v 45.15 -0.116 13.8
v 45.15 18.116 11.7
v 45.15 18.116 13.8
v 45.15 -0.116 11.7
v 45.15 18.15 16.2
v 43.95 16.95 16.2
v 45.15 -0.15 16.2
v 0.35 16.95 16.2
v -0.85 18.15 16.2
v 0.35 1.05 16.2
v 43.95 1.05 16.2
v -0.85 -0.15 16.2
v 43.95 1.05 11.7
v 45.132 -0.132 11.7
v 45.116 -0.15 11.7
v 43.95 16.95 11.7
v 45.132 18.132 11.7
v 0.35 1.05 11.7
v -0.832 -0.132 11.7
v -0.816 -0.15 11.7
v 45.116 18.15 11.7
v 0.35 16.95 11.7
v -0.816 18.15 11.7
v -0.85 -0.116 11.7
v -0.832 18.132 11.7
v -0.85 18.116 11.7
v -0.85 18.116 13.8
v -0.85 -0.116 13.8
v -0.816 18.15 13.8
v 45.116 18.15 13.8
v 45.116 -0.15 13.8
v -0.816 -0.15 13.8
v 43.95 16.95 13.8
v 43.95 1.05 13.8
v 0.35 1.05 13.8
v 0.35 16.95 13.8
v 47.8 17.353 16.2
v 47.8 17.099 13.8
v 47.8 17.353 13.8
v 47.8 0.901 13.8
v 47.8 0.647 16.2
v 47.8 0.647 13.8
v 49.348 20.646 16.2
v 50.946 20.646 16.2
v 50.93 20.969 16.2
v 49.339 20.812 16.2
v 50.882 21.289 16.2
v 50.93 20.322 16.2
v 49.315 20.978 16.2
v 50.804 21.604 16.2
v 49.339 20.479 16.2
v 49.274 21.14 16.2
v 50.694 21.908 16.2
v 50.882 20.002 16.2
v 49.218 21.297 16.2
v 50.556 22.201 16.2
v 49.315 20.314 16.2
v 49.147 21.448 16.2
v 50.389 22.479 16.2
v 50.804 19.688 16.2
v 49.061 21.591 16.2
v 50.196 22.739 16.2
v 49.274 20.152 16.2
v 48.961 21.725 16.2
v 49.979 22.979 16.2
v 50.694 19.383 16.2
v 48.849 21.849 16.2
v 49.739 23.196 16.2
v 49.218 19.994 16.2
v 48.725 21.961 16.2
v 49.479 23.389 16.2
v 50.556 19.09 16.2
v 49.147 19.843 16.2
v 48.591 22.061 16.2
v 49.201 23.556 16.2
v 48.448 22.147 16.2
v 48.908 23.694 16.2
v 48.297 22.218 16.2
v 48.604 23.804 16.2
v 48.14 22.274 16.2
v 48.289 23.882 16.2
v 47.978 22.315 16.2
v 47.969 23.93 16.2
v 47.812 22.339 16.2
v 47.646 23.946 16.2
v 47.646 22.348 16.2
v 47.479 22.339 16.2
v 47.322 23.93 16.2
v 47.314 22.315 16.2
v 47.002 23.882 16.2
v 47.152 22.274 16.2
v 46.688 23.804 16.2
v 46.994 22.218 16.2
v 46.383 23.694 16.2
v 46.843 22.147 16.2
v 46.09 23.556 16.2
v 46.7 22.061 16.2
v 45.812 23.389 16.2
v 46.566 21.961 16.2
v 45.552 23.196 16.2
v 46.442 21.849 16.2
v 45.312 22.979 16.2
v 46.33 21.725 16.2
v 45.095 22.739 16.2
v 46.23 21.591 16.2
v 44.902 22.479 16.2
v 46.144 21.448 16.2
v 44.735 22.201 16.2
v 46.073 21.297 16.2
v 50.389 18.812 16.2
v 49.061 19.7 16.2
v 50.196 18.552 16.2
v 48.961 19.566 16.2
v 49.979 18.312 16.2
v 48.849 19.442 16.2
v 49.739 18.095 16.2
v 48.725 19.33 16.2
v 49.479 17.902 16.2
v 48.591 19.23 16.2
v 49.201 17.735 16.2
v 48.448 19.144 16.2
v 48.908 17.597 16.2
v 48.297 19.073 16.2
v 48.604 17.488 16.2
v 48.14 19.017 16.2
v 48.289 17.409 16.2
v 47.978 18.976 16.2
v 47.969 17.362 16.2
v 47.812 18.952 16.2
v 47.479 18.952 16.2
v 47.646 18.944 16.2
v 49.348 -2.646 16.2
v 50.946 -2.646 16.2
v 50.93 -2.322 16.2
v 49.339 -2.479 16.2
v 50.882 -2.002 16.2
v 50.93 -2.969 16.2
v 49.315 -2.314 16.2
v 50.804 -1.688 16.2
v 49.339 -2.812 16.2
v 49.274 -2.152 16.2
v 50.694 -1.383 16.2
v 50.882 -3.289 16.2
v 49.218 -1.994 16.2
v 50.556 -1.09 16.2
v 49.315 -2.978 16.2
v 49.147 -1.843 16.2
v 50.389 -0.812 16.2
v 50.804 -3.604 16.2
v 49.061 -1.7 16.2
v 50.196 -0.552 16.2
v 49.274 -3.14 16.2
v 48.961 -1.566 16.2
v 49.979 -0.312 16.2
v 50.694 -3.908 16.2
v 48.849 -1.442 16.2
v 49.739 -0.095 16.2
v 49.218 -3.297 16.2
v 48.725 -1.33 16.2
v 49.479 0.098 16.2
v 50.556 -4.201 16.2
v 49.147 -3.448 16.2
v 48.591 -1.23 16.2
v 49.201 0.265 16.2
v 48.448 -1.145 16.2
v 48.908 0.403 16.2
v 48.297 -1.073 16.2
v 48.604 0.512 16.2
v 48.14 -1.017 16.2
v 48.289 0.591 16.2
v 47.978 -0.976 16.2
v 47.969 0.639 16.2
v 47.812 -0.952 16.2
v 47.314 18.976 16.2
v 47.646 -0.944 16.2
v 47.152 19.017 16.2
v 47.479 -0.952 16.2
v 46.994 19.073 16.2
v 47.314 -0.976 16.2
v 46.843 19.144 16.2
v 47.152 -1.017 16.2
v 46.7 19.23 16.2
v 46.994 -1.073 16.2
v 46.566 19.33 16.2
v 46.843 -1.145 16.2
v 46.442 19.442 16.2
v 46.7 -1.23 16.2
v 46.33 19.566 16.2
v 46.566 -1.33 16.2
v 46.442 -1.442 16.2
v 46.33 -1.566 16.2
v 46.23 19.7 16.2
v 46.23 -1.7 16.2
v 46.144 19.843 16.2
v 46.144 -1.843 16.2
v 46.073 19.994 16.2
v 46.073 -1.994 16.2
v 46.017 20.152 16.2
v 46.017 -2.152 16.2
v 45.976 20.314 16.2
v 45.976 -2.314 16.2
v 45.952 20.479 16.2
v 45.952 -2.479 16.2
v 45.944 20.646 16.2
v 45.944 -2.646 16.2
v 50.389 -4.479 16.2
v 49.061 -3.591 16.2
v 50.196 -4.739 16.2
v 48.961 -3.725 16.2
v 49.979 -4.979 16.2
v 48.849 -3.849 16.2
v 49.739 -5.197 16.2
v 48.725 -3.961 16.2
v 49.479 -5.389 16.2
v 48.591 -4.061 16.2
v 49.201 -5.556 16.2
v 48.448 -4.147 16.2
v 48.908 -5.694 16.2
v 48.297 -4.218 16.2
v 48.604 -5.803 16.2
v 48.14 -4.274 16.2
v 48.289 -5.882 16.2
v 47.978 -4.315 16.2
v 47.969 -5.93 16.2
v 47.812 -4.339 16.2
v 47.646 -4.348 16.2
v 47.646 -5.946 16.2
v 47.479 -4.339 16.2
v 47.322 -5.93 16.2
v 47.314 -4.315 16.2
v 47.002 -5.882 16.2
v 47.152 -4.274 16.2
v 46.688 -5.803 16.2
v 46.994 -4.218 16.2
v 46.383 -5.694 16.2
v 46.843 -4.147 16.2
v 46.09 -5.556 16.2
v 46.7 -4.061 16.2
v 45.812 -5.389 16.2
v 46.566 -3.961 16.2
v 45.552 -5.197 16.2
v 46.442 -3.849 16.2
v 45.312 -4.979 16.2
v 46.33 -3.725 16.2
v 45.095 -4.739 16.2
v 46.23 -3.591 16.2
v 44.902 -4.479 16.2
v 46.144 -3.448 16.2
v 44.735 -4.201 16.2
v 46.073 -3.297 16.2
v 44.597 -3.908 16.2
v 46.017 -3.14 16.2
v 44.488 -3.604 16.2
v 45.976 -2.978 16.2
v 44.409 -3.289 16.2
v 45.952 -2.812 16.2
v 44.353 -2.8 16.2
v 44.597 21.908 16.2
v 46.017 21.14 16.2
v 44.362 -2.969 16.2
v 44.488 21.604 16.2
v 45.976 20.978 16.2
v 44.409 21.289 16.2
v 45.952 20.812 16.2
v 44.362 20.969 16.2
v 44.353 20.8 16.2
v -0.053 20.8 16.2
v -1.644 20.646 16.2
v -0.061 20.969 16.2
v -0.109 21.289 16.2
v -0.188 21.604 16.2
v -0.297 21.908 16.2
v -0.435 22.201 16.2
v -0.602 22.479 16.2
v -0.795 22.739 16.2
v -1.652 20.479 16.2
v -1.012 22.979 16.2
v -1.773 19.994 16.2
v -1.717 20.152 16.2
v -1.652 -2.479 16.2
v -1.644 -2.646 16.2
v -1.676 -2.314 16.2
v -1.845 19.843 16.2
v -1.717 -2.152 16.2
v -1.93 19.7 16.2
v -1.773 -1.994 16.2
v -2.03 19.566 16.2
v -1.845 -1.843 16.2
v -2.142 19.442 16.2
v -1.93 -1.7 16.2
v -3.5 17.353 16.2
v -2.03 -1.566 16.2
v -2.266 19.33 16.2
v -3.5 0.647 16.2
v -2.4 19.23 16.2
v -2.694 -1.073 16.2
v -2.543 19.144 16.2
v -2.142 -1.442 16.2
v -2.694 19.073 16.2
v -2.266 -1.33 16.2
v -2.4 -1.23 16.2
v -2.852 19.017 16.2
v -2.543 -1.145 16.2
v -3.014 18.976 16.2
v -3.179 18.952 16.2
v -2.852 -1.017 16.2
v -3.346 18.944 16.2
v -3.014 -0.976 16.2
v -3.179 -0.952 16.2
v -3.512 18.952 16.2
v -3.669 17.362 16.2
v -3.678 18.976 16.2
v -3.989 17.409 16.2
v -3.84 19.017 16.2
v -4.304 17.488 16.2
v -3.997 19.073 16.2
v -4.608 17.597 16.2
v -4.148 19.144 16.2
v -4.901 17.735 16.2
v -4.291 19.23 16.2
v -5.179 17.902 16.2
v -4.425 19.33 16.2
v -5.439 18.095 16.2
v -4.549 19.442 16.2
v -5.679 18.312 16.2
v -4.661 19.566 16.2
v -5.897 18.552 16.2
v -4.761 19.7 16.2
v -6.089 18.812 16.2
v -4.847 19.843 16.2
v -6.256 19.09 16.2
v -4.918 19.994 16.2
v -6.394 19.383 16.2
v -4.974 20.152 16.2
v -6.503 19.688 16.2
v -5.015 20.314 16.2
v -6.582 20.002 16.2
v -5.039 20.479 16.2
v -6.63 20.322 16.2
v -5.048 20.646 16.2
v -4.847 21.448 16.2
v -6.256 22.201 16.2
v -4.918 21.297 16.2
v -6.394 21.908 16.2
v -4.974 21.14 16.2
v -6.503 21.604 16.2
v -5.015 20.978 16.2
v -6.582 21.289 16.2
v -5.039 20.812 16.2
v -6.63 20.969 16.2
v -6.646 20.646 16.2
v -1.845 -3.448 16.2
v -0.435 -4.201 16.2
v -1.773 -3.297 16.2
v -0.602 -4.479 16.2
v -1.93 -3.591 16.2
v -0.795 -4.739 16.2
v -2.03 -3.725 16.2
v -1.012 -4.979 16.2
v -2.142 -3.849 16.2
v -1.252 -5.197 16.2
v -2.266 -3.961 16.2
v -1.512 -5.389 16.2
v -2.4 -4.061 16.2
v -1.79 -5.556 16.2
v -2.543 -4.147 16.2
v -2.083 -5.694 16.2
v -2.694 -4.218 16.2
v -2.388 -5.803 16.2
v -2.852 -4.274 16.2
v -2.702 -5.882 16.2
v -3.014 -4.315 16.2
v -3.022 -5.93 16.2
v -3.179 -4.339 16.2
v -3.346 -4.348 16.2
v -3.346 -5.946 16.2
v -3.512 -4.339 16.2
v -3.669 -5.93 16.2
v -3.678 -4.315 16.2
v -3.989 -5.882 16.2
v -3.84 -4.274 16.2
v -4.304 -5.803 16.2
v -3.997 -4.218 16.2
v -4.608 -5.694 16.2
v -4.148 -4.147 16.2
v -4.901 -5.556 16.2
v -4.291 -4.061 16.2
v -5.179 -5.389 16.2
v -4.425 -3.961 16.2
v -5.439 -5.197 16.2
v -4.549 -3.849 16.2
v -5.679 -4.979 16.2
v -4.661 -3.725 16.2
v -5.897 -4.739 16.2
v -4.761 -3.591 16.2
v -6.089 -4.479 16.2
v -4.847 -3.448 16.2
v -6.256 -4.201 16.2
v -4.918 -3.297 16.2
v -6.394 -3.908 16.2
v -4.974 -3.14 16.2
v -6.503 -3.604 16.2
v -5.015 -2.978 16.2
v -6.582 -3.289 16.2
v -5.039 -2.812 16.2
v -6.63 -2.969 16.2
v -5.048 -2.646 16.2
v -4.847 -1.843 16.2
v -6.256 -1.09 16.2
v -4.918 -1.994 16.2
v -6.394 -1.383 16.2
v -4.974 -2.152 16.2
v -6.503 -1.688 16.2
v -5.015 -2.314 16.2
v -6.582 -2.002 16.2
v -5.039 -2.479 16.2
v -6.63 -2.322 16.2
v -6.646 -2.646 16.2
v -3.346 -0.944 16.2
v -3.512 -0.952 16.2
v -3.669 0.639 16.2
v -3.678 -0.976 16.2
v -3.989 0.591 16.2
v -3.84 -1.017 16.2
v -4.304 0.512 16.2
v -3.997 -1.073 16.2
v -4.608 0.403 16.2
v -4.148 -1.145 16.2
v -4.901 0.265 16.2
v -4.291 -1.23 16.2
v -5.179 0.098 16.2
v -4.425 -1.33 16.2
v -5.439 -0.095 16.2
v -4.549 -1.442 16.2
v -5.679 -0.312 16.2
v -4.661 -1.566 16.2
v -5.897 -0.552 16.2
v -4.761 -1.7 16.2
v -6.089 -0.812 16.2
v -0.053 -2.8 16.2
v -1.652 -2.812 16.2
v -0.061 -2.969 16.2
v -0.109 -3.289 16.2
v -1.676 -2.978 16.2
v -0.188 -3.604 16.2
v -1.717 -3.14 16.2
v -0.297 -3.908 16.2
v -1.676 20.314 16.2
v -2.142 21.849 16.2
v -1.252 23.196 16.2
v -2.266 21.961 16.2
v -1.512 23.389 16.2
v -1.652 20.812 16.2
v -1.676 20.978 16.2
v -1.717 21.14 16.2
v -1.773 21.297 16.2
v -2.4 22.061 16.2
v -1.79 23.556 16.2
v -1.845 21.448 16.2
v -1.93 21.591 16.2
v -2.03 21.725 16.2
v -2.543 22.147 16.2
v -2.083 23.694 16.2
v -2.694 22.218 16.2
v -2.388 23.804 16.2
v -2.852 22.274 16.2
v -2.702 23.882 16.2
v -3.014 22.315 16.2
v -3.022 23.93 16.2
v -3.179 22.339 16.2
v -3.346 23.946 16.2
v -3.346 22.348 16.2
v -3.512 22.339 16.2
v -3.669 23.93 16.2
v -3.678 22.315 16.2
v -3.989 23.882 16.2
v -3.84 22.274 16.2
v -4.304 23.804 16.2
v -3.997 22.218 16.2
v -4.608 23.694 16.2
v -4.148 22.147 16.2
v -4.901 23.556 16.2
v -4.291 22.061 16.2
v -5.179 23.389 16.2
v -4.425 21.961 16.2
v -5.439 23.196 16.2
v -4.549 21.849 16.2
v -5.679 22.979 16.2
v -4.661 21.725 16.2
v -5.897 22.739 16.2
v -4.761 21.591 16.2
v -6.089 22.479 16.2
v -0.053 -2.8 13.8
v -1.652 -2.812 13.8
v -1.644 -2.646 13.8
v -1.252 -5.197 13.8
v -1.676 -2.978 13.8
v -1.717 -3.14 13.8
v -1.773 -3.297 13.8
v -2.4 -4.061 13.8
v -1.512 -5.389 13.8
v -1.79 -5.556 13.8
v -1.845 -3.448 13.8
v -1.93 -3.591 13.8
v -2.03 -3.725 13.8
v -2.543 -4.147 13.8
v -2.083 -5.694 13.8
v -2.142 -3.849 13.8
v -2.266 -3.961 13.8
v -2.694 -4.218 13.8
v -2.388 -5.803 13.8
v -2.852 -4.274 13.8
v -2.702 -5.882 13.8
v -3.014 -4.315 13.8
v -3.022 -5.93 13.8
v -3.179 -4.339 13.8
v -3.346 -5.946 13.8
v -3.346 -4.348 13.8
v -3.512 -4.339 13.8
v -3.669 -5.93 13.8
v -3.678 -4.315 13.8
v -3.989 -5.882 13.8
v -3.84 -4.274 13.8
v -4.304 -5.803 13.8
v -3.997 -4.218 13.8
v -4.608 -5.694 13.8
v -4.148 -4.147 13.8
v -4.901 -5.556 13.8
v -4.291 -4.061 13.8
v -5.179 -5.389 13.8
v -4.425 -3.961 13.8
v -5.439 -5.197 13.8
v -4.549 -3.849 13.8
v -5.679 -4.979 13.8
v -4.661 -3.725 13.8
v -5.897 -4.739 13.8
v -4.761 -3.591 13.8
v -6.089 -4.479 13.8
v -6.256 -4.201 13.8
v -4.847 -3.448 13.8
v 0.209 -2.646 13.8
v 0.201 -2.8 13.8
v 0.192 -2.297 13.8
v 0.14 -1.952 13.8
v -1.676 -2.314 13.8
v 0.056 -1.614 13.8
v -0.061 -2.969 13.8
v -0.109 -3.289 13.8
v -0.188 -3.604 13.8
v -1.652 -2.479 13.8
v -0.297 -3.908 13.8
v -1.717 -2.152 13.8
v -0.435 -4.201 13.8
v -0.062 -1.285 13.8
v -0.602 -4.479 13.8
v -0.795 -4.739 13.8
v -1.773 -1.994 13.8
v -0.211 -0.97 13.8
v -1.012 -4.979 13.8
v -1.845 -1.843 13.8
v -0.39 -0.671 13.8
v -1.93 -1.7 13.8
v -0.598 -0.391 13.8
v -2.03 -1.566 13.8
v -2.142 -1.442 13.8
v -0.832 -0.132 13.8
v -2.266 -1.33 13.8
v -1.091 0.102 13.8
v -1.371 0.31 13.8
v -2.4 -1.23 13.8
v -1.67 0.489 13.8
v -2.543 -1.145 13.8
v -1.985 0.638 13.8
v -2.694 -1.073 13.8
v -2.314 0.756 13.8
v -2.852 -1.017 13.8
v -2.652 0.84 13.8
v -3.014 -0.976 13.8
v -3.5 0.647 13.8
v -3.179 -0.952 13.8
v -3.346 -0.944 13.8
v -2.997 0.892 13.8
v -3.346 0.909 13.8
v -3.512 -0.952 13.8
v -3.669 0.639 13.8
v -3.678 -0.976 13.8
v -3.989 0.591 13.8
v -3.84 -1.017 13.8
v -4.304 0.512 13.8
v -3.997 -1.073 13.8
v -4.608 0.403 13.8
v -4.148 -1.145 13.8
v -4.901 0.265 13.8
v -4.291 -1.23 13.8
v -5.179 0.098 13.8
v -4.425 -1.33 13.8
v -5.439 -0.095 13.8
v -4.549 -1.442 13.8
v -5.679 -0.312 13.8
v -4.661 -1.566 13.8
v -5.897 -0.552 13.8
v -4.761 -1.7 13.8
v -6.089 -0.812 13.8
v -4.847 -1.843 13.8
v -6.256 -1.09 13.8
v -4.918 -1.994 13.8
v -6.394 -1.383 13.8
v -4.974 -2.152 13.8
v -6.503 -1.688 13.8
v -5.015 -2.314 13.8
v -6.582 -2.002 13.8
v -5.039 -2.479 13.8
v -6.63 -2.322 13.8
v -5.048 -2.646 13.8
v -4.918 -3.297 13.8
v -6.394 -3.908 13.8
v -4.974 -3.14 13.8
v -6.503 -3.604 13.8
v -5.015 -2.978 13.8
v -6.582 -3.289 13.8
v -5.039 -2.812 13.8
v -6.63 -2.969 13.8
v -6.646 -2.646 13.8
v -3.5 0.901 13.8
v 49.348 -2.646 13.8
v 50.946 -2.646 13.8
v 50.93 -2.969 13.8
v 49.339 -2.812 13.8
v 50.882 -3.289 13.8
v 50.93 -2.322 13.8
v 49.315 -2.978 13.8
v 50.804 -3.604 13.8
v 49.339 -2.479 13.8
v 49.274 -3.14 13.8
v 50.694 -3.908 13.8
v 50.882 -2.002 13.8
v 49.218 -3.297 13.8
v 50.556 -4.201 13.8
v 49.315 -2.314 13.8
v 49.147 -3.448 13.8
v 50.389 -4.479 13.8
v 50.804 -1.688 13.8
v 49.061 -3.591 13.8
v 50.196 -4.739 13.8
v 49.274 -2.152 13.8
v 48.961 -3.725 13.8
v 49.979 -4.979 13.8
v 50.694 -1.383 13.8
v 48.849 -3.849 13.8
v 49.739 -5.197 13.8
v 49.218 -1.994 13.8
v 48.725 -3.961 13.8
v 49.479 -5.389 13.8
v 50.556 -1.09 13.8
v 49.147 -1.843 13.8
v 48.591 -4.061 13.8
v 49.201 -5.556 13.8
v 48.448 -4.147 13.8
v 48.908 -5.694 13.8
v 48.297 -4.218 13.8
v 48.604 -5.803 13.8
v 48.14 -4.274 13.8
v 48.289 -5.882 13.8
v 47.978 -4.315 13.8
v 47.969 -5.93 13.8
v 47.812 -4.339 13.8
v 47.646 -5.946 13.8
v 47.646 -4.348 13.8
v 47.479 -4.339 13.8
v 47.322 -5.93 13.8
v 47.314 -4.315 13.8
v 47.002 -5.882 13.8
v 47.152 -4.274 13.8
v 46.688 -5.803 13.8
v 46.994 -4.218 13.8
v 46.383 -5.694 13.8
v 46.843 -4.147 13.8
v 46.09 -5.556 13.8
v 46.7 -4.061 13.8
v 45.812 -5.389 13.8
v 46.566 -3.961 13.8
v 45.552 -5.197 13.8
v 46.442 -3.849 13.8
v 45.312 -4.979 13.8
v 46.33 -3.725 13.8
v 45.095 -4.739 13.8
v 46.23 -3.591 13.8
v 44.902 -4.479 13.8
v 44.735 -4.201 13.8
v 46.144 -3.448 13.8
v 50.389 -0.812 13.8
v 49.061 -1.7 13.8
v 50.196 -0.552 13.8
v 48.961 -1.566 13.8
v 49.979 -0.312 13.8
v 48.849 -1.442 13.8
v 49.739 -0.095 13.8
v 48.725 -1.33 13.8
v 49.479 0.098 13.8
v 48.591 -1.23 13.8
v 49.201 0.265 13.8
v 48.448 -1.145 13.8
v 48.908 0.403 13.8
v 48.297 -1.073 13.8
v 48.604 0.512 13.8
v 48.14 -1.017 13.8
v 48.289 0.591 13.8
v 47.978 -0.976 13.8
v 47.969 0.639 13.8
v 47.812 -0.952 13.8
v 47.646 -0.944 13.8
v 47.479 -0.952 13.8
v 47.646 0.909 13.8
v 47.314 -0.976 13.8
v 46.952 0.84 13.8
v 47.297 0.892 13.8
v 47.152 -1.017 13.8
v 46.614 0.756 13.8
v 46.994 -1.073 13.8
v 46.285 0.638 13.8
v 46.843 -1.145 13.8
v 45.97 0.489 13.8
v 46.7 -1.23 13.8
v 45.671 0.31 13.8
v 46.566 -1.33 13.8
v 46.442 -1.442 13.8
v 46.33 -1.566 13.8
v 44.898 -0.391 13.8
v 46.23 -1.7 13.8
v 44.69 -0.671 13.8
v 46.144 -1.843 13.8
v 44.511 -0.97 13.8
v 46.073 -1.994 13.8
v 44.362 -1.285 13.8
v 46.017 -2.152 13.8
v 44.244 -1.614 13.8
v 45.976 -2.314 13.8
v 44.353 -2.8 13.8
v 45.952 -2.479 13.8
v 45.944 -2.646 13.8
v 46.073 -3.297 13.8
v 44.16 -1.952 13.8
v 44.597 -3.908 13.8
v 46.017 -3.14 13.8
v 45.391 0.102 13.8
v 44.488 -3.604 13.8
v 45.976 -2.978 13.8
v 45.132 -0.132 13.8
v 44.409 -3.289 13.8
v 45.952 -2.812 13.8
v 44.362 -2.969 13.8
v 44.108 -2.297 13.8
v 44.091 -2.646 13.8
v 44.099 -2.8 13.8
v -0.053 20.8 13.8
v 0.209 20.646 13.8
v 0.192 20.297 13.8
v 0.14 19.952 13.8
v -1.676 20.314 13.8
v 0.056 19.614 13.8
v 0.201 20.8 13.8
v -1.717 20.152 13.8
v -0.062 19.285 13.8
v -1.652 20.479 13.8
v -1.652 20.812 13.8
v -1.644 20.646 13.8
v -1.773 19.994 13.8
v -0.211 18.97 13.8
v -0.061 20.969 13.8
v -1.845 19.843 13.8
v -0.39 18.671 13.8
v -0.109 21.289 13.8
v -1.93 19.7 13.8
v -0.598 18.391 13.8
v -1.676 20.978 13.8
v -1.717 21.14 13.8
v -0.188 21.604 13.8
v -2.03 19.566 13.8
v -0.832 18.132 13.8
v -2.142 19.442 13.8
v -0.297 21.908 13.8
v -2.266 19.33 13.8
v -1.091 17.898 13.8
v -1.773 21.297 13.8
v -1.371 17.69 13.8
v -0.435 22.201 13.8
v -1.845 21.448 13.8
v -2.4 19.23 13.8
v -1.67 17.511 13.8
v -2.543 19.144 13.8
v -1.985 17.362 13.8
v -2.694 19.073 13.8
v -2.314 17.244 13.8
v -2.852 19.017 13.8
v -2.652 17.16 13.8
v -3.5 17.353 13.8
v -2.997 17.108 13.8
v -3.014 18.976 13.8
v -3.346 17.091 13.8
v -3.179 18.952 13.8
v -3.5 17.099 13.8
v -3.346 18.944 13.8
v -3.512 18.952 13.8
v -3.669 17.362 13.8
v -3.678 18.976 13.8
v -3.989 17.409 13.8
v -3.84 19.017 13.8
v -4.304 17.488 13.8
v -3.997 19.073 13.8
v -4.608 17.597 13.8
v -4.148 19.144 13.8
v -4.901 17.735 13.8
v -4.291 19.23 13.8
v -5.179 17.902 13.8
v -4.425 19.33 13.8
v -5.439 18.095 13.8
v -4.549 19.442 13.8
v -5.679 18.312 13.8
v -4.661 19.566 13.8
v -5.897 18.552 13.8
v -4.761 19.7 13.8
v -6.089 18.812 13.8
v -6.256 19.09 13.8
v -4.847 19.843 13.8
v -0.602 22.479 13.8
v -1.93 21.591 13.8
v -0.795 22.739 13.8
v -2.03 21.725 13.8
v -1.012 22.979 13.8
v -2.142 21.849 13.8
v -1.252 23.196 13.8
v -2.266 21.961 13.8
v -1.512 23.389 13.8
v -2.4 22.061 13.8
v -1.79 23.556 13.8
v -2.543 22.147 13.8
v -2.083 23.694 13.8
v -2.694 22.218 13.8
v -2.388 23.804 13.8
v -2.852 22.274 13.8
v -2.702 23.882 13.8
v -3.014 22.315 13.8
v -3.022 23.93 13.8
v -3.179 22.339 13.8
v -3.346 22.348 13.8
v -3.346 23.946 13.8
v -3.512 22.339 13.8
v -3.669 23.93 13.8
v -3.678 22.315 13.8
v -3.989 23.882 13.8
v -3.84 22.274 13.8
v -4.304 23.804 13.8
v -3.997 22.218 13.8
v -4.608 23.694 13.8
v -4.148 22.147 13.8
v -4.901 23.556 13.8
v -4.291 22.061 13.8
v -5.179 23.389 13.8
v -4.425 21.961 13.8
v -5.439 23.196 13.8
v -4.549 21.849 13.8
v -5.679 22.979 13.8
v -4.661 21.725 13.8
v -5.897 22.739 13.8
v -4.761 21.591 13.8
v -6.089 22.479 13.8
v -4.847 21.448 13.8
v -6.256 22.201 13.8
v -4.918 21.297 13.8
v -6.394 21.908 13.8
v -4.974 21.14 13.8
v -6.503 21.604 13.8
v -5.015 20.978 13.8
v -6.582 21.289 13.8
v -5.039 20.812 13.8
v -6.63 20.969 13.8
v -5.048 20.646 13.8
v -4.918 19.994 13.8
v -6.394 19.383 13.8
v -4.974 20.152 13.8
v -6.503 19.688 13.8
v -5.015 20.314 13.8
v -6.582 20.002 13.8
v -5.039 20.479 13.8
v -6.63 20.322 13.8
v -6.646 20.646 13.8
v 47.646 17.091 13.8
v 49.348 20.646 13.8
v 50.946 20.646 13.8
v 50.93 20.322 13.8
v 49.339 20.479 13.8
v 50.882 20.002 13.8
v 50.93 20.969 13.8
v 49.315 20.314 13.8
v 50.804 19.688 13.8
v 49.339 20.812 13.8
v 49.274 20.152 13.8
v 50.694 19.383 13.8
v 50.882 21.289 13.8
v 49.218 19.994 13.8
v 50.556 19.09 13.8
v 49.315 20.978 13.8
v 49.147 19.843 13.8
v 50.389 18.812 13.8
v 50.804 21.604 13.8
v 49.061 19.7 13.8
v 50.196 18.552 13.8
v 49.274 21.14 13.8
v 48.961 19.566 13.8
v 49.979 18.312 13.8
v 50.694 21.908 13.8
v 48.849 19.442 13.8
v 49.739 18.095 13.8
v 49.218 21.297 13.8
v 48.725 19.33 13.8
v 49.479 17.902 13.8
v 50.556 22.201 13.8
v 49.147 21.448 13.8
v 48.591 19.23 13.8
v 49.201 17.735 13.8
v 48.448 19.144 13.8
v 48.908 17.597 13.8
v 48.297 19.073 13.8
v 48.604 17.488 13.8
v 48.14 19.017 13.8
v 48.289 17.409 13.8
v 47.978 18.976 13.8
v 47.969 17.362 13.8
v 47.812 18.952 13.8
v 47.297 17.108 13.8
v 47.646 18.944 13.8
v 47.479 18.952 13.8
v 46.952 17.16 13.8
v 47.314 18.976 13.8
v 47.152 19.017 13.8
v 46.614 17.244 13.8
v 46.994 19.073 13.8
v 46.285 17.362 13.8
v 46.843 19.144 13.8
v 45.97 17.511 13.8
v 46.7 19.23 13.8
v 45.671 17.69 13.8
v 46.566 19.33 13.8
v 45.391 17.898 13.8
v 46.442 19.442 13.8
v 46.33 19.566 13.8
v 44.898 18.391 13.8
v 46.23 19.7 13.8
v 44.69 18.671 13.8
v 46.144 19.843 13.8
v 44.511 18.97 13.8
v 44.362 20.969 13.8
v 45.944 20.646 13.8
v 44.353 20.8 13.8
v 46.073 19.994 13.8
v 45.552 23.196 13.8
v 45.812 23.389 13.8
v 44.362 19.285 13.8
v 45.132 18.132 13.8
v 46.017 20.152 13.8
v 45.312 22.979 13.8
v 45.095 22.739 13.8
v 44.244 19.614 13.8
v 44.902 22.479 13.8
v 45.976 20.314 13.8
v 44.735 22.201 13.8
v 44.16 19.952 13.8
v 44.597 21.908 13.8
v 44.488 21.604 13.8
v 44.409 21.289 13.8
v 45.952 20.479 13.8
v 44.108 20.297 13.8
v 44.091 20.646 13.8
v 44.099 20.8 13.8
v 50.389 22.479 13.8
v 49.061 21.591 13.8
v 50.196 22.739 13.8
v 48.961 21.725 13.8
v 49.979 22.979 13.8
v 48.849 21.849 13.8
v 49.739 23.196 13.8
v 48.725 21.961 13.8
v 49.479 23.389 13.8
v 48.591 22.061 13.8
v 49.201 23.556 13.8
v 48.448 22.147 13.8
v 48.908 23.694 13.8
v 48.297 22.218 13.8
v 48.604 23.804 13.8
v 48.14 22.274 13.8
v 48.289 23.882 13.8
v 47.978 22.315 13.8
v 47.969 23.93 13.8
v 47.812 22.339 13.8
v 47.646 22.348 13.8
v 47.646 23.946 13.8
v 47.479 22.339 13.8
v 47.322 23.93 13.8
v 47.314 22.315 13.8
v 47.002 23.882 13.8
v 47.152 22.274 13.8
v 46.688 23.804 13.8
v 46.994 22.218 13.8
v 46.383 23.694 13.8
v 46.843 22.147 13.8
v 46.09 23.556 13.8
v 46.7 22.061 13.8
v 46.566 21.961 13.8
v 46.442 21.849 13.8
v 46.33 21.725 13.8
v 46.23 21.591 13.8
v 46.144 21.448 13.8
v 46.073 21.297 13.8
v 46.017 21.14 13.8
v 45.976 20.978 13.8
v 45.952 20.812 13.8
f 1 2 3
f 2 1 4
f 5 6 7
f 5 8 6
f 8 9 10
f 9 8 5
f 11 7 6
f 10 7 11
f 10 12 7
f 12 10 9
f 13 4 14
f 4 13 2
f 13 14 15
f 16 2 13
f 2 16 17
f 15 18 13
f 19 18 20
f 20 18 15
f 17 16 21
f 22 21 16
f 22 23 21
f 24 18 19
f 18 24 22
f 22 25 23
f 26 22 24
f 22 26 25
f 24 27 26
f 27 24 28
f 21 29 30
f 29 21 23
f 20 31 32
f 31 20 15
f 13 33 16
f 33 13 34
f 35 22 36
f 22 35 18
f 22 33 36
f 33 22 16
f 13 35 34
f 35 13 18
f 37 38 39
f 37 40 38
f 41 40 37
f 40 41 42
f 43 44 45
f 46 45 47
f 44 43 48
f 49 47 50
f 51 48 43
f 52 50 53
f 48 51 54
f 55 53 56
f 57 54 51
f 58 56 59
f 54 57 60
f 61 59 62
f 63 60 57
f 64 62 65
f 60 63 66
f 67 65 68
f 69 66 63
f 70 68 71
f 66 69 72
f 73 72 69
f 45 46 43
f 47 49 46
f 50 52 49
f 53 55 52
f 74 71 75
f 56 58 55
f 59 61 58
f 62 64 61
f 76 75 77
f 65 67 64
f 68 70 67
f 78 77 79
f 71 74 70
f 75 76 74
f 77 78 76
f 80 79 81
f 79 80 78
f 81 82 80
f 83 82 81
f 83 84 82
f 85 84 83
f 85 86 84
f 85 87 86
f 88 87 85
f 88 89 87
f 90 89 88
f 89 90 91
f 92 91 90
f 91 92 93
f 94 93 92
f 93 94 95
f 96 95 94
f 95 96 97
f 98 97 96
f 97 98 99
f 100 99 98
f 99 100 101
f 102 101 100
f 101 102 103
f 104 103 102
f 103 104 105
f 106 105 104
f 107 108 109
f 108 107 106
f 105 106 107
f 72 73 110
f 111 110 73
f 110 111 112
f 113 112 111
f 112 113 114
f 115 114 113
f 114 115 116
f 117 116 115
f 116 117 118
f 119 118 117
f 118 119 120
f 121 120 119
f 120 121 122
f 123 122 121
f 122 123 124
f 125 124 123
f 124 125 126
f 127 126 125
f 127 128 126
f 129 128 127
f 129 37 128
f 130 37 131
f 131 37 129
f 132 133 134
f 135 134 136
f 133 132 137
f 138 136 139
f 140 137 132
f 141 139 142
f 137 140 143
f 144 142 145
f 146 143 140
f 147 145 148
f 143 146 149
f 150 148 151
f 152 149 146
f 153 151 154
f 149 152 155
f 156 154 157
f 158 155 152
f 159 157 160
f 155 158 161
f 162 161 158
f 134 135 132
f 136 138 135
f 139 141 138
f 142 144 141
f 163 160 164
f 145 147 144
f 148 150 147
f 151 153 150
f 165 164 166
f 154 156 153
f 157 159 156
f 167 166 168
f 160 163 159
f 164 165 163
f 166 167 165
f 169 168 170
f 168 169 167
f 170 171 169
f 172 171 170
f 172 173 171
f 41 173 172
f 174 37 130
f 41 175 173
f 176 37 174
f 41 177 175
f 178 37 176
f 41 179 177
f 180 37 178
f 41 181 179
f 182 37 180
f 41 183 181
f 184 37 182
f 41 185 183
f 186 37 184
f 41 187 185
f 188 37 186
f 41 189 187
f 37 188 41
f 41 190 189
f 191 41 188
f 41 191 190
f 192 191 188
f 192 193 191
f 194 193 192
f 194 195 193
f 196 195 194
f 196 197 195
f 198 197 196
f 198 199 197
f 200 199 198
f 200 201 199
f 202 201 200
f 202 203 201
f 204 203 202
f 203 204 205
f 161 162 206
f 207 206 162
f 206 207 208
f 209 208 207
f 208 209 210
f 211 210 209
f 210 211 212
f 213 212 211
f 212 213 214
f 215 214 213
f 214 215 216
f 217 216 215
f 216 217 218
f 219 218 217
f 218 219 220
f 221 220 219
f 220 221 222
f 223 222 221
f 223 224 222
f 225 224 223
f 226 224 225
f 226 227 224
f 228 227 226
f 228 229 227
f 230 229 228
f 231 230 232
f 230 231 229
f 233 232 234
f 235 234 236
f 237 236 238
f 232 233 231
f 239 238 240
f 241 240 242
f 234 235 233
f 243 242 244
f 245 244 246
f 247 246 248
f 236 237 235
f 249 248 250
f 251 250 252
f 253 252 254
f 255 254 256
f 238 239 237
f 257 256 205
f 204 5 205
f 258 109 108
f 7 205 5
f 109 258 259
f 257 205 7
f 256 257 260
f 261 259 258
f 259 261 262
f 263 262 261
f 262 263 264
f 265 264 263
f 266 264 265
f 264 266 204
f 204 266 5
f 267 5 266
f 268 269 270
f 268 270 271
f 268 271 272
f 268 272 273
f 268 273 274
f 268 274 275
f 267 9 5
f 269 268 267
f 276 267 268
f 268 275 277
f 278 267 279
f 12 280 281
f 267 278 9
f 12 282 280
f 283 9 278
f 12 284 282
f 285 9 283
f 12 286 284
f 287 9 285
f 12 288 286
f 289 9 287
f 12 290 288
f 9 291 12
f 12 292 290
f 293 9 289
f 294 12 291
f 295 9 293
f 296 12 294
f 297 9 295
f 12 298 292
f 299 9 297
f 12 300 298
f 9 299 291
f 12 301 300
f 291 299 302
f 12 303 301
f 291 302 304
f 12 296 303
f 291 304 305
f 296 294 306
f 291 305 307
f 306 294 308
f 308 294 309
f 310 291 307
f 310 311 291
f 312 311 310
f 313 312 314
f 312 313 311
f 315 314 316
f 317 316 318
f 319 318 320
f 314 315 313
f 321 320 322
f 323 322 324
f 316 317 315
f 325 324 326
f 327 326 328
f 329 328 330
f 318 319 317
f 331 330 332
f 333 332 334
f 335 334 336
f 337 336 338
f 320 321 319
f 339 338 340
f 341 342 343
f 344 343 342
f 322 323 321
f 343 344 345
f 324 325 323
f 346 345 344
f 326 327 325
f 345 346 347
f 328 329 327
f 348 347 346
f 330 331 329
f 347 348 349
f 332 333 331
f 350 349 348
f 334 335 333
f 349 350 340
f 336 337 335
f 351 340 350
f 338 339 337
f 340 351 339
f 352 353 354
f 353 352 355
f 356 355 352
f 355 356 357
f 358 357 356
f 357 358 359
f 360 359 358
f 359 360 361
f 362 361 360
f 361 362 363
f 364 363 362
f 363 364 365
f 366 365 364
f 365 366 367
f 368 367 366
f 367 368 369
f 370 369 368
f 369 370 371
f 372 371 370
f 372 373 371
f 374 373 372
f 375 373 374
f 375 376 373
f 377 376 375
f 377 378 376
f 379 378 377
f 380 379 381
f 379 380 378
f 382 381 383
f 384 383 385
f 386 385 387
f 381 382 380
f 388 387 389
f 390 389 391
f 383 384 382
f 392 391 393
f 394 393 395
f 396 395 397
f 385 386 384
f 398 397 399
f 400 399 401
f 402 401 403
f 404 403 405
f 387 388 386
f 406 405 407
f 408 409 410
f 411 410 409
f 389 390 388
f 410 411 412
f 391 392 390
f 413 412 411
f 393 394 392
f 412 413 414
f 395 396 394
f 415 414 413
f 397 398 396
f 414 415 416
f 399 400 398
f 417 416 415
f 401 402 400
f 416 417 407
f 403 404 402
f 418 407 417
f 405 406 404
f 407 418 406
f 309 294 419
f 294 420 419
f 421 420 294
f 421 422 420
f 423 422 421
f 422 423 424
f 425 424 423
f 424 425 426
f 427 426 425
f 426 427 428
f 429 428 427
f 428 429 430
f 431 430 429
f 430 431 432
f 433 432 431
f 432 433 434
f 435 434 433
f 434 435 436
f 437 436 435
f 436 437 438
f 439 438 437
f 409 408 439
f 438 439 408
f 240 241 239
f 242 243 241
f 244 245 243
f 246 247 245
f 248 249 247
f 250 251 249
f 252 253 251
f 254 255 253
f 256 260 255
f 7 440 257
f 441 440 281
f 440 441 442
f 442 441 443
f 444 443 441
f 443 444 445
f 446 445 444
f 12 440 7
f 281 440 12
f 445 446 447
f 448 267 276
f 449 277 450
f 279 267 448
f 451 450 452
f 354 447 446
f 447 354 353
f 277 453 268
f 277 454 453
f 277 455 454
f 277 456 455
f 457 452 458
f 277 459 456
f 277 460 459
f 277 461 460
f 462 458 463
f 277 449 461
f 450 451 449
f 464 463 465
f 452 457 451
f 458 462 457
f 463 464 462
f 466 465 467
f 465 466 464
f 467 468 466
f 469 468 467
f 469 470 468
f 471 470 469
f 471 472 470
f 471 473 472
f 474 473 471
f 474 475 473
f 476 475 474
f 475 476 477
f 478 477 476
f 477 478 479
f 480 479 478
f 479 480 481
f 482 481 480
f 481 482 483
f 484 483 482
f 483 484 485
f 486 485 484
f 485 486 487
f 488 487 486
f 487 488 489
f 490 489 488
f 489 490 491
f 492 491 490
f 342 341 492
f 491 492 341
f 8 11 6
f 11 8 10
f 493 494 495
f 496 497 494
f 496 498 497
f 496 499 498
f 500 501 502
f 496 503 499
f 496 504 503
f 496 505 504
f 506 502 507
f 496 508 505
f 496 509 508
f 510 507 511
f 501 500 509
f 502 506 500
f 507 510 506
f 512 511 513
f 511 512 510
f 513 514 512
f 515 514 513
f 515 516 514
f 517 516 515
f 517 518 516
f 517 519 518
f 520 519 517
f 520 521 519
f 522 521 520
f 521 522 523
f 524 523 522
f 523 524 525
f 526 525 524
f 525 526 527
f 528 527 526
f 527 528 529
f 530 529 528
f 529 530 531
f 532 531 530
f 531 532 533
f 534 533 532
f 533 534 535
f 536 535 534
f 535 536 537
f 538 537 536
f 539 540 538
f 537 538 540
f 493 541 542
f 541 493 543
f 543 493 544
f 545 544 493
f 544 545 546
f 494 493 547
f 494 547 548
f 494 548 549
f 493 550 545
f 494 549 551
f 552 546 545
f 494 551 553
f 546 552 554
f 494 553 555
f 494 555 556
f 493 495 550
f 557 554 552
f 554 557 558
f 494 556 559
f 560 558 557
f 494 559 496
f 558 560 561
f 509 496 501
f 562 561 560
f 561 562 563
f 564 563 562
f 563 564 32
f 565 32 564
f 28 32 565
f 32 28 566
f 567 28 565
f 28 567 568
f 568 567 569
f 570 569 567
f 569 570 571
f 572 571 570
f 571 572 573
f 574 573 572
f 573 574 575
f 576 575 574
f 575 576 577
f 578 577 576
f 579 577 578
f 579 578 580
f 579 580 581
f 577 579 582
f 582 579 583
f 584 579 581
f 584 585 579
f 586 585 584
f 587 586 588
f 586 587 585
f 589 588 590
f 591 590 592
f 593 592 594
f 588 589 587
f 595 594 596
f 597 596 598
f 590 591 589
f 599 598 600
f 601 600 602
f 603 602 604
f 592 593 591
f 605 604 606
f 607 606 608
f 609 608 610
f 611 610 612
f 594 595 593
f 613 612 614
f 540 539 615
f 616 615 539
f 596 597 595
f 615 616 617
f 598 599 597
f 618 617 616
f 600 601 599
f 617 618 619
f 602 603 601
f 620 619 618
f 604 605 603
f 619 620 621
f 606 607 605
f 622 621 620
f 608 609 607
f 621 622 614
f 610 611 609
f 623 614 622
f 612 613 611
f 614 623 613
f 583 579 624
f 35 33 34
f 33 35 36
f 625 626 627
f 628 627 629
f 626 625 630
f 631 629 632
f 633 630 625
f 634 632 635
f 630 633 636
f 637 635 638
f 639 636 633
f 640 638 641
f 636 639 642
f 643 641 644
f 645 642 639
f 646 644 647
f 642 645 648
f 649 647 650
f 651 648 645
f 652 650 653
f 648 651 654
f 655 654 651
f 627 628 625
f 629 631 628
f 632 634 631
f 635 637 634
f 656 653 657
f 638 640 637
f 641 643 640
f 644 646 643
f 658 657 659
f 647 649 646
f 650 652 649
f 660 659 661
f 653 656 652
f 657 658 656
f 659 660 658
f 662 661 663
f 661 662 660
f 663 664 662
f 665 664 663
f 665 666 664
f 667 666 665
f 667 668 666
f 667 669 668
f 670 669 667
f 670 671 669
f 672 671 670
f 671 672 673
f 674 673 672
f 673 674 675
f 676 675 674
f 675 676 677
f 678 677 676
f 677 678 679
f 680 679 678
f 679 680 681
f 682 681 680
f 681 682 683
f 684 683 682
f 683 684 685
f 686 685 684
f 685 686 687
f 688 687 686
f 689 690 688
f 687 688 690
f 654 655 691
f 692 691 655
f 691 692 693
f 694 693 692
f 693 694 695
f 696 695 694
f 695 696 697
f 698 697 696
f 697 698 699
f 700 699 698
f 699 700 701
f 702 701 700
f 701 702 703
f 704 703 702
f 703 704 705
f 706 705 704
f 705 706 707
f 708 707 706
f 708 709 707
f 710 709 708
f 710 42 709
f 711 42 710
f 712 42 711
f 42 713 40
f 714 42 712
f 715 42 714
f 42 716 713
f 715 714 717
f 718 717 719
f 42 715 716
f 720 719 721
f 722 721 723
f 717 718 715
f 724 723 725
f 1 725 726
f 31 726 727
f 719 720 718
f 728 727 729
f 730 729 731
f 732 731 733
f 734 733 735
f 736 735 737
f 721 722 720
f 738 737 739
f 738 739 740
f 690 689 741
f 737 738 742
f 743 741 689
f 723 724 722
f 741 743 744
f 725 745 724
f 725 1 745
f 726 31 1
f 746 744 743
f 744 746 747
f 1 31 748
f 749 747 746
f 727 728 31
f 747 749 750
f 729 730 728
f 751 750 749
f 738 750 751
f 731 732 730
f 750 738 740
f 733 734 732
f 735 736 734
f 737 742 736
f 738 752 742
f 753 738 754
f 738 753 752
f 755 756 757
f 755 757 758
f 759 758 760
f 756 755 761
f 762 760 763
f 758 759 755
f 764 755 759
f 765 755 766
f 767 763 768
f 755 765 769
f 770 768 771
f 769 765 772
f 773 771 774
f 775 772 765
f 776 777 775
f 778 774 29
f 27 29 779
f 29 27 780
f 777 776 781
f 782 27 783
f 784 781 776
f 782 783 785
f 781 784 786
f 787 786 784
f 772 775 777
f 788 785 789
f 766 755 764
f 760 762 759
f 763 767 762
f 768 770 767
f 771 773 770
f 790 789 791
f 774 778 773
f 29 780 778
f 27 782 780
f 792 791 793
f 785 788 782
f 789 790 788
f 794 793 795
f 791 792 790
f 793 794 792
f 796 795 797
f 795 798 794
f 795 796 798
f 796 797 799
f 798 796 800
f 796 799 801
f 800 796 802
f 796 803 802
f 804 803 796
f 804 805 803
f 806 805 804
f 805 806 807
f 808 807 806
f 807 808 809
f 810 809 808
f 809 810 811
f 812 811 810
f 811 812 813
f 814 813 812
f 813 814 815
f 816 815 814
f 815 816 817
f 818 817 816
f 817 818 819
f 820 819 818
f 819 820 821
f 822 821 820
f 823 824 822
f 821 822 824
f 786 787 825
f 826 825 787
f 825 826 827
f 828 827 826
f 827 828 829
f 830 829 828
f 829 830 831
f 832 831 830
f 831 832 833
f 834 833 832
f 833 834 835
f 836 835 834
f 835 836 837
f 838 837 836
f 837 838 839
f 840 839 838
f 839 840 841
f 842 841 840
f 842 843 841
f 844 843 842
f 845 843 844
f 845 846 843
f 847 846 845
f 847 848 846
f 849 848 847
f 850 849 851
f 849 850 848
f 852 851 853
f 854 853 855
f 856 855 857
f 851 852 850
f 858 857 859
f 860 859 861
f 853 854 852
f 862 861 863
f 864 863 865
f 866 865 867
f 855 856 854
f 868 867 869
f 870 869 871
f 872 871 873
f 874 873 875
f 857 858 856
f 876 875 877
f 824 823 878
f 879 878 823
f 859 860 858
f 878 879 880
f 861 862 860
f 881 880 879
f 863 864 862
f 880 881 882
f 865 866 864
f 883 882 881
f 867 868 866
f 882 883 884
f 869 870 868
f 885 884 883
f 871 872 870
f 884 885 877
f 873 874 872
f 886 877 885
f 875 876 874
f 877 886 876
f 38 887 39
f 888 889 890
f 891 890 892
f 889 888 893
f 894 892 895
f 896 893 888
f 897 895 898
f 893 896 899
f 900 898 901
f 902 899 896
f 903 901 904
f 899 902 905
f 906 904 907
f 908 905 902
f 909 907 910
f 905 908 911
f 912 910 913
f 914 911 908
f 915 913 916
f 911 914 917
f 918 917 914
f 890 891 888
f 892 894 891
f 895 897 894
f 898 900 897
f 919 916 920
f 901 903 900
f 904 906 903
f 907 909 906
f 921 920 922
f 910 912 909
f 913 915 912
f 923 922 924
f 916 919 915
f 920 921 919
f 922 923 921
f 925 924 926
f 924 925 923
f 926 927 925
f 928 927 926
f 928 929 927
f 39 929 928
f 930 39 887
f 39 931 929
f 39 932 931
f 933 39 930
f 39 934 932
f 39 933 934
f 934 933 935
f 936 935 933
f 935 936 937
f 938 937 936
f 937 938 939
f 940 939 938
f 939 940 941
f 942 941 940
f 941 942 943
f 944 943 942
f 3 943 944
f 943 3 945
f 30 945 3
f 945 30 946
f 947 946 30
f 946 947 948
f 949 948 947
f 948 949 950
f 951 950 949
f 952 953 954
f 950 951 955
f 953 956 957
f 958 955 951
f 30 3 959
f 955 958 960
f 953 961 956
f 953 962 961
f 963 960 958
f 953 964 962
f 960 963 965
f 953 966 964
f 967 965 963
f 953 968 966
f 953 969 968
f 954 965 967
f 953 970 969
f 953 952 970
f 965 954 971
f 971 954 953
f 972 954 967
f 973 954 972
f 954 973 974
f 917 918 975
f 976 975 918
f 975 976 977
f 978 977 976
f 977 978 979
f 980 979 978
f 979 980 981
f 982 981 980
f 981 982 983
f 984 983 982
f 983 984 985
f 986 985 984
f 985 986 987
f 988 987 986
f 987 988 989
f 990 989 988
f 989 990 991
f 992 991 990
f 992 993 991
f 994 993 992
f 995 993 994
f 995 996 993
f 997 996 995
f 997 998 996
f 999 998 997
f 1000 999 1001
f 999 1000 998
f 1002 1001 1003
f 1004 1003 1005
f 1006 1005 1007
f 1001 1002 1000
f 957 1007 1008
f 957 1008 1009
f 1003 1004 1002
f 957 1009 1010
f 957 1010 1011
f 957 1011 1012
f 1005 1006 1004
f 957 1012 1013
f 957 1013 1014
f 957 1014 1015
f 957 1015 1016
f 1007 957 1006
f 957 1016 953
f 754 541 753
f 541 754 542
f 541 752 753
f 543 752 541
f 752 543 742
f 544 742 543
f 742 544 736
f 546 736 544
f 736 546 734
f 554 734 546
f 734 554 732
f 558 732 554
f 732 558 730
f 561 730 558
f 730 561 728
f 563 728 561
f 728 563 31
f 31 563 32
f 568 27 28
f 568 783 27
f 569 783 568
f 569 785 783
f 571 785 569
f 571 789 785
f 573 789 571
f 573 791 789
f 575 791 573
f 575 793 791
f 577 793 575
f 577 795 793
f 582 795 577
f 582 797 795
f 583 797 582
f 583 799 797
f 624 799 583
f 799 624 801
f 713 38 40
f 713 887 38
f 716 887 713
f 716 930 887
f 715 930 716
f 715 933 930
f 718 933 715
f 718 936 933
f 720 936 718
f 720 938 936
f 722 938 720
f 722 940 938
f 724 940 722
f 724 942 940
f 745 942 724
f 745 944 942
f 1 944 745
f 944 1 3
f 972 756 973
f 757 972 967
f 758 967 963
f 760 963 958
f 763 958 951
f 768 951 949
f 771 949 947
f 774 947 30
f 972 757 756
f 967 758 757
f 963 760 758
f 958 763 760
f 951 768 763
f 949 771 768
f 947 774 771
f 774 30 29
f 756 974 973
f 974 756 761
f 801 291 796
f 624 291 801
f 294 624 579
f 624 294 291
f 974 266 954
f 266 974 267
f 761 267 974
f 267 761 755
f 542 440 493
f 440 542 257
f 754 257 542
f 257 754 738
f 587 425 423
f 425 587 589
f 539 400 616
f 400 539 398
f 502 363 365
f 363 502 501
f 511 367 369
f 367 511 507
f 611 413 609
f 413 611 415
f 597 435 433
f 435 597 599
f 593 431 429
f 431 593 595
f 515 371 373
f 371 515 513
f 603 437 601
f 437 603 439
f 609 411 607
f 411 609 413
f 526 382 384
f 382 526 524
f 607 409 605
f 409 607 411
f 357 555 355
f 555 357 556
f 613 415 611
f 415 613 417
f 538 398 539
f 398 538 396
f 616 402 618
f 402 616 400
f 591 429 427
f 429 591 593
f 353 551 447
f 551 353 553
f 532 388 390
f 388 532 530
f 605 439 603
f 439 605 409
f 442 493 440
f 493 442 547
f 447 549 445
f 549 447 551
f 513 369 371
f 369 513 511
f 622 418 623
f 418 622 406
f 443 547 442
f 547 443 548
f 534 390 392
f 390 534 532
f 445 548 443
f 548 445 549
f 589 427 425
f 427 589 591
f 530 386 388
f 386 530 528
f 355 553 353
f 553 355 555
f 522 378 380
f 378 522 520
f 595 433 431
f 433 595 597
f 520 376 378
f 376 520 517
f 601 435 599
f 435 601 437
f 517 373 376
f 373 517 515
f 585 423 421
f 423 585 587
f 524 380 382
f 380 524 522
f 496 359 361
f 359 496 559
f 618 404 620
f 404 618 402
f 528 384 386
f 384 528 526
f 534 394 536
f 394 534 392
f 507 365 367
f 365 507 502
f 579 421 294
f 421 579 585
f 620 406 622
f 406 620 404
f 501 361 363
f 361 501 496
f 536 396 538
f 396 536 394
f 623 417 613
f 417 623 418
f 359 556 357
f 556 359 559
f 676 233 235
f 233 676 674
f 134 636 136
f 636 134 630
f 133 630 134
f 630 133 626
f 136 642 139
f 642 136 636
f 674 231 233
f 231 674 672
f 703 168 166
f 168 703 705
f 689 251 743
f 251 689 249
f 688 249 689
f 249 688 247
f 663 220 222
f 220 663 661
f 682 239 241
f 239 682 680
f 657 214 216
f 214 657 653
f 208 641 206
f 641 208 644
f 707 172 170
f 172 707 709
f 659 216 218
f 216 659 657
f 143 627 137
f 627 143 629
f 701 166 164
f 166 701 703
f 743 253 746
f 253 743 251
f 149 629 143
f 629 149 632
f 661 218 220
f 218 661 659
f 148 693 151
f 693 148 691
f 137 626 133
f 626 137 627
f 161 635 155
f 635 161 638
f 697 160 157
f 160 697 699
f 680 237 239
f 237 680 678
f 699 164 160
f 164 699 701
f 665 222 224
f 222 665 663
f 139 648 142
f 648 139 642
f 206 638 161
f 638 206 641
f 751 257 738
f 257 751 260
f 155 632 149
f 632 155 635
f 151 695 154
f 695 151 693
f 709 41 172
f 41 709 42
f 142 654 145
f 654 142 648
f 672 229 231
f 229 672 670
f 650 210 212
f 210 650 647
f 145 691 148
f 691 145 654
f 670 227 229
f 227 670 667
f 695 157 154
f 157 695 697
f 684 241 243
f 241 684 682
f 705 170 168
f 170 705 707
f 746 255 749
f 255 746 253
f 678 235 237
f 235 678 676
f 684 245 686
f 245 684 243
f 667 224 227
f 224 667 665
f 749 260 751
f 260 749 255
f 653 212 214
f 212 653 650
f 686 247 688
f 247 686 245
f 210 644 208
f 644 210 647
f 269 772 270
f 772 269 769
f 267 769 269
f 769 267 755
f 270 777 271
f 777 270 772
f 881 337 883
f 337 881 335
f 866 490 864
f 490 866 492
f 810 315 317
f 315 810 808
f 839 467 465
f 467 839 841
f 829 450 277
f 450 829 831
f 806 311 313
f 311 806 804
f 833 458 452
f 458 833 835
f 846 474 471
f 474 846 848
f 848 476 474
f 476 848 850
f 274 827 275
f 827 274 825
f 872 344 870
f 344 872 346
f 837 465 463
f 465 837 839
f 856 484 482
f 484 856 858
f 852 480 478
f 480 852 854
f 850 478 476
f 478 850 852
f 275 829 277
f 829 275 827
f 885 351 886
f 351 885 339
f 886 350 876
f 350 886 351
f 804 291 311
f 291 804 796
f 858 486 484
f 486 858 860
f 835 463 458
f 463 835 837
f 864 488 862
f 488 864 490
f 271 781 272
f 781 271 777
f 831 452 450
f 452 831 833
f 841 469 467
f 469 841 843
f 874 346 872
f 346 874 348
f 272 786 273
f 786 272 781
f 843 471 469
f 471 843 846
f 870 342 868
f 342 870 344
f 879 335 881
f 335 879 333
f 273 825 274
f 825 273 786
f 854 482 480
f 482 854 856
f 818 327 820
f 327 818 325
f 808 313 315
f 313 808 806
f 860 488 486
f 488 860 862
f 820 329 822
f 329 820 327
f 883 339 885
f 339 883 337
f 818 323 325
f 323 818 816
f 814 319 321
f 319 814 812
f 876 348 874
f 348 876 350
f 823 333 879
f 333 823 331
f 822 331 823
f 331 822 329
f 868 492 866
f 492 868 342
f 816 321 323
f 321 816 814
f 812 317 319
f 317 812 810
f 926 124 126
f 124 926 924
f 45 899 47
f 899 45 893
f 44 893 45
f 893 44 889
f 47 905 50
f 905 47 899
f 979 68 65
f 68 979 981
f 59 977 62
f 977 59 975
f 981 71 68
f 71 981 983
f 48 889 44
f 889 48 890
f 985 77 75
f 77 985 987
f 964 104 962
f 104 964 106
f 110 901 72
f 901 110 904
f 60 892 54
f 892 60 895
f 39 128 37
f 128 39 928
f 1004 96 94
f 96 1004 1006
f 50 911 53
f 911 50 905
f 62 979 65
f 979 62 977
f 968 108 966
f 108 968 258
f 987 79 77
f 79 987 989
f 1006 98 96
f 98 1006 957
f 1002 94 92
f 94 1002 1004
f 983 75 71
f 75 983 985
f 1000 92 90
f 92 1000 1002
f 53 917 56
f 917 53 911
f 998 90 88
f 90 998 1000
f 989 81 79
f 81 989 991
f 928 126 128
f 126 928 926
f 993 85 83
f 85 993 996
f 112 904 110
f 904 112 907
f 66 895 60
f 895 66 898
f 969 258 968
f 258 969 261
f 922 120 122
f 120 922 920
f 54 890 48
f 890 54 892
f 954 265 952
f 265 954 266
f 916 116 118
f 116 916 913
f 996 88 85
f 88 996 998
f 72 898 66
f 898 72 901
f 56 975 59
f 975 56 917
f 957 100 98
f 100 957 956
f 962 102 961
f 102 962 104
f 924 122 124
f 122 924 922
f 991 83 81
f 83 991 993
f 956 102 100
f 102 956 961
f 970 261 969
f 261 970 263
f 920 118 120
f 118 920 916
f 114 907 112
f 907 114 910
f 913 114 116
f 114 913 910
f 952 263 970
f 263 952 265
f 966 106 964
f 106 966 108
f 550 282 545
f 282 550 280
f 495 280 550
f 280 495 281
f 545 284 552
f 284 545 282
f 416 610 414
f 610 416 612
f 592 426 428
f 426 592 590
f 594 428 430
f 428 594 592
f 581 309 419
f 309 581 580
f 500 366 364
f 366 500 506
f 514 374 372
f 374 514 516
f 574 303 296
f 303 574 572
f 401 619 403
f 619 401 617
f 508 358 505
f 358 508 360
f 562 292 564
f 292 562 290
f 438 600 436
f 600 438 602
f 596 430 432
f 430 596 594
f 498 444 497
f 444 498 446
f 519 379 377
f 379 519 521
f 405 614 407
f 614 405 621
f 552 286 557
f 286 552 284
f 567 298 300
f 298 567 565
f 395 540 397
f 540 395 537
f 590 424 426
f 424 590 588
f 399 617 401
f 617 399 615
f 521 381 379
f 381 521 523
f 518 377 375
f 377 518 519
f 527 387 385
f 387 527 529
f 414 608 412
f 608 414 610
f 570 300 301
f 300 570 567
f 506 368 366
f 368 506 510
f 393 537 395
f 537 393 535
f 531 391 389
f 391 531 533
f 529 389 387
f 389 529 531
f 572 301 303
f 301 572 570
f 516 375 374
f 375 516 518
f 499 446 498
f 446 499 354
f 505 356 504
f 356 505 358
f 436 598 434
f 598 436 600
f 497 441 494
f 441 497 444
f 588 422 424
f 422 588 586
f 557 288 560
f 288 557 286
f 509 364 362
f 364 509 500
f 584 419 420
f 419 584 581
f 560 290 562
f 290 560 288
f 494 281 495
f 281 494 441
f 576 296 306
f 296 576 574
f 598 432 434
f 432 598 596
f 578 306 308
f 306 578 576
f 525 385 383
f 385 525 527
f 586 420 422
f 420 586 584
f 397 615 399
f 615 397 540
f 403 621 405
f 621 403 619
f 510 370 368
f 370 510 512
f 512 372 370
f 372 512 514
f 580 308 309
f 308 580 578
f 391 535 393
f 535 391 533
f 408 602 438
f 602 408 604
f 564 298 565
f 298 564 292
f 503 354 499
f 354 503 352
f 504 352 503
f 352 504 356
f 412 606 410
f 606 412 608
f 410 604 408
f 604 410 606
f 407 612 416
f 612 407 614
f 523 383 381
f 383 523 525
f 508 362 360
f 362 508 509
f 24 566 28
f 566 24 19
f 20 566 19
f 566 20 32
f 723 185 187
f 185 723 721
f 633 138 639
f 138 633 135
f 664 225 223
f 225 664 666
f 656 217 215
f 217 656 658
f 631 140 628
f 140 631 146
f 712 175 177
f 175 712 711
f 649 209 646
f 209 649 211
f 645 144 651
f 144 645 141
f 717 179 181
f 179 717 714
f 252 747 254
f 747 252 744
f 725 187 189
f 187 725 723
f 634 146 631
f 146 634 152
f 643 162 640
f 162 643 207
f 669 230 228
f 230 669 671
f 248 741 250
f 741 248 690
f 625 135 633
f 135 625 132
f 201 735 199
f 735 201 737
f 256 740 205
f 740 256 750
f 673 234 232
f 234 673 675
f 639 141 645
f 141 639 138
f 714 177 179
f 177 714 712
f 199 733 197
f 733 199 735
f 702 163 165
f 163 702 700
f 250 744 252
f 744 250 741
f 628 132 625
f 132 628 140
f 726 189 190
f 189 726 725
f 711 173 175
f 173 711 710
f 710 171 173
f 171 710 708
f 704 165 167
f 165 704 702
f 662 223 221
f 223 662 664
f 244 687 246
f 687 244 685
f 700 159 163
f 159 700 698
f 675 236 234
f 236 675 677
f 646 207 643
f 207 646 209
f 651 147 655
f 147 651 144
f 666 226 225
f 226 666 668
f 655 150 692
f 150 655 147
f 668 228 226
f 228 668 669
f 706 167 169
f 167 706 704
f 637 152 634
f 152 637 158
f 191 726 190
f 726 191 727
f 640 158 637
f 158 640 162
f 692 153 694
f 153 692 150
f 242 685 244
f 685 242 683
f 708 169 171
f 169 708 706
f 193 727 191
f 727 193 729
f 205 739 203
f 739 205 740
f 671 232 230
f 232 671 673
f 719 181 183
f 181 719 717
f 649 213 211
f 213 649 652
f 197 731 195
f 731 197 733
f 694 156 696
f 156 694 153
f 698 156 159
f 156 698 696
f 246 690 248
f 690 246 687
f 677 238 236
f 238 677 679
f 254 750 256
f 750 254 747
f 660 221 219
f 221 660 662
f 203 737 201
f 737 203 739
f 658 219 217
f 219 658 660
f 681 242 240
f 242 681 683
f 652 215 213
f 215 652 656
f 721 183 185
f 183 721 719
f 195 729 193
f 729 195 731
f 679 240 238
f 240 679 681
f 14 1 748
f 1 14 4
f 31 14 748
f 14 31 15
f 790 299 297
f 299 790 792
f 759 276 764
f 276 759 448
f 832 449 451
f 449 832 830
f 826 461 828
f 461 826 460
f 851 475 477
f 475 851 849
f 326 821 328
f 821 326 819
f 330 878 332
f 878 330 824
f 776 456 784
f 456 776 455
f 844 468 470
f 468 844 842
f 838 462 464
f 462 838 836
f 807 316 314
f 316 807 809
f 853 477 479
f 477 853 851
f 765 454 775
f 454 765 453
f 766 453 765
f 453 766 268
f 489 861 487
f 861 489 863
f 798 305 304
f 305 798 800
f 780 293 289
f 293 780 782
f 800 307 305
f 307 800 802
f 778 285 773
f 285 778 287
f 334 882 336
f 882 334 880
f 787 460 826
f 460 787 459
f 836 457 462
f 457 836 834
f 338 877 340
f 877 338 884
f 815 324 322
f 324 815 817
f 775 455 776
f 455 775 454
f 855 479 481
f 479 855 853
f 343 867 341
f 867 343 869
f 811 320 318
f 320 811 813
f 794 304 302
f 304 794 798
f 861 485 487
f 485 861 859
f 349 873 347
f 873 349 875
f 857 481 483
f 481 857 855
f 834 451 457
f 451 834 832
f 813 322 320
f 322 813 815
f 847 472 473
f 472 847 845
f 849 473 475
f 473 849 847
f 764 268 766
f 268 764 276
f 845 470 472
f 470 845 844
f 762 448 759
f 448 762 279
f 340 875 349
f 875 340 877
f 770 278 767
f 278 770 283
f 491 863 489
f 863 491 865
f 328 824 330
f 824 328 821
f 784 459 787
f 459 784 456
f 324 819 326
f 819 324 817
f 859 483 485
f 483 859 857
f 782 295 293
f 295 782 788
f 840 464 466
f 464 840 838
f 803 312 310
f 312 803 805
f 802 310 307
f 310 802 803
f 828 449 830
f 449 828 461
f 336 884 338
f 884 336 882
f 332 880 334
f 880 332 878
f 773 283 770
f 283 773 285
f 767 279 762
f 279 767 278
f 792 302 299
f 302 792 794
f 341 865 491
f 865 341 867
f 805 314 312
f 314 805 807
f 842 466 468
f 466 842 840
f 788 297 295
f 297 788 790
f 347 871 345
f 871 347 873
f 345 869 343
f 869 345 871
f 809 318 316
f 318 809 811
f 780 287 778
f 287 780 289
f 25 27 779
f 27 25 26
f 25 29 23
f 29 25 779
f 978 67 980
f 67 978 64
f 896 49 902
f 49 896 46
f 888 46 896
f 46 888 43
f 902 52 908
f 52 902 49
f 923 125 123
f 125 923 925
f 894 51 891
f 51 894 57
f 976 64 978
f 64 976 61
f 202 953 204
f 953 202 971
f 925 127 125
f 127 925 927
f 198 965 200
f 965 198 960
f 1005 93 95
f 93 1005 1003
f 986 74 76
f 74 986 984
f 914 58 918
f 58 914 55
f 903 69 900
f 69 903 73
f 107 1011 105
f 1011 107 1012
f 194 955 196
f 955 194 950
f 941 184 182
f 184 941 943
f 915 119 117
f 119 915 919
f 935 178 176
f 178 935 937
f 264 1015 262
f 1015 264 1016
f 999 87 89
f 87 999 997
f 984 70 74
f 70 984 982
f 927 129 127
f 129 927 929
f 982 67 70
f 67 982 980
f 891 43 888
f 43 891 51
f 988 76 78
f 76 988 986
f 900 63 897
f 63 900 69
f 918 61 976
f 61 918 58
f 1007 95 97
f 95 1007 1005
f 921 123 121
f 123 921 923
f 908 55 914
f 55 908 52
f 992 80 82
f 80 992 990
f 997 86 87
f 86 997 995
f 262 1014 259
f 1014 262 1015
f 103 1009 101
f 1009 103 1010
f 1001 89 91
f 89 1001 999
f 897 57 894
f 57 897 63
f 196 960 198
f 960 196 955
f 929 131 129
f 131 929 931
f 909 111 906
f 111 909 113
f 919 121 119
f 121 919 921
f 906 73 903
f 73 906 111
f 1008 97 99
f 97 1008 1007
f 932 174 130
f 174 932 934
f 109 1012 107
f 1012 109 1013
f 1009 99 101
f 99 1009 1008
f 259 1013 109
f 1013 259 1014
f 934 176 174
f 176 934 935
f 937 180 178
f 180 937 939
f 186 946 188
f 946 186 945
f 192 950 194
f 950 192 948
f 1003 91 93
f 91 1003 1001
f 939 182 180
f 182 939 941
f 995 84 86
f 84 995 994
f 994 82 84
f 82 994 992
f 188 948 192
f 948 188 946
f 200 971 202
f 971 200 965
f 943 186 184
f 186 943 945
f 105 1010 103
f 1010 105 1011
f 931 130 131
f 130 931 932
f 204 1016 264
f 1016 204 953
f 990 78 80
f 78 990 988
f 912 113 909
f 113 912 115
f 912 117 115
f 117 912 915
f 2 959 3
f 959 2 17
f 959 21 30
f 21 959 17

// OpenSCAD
// body lid
difference() {
  union() {
    // body lid (lid_plate)
    multmatrix([[1, 0, 0, 22.15], [0, 1, 0, 9], [0, 0, 1, 13.8], [0, 0, 0, 1]]) translate([-25.65, -11.8, 0]) cube([51.3, 23.6, 2.4]);
    // add lid_lip (lip)
    multmatrix([[1, 0, 0, 22.15], [0, 1, 0, 9], [0, 0, 1, 11.7], [0, 0, 0, 1]]) difference() { translate([-23, -9.15, 0]) cube([46, 18.3, 4.5]); translate([0, 0, -1]) translate([-21.8, -7.95, 0]) cube([43.6, 15.9, 6.5]); }
    // add boss_1_pad (pad)
    multmatrix([[1, 0, 0, -3.345584], [0, 1, 0, -2.645584], [0, 0, 1, 13.8], [0, 0, 0, 1]]) cylinder(h=2.4, d=6.6, $fn=64);
    // add boss_2_pad (pad)
    multmatrix([[1, 0, 0, 47.645584], [0, 1, 0, -2.645584], [0, 0, 1, 13.8], [0, 0, 0, 1]]) cylinder(h=2.4, d=6.6, $fn=64);
    // add boss_3_pad (pad)
    multmatrix([[1, 0, 0, -3.345584], [0, 1, 0, 20.645584], [0, 0, 1, 13.8], [0, 0, 0, 1]]) cylinder(h=2.4, d=6.6, $fn=64);
    // add boss_4_pad (pad)
    multmatrix([[1, 0, 0, 47.645584], [0, 1, 0, 20.645584], [0, 0, 1, 13.8], [0, 0, 0, 1]]) cylinder(h=2.4, d=6.6, $fn=64);
  }
  // cut boss_1_lid_hole (screw_hole)
  multmatrix([[1, 0, 0, -3.345584], [0, 1, 0, -2.645584], [0, 0, 1, 12.8], [0, 0, 0, 1]]) cylinder(h=4.4, d=3.4041, $fn=64);
  // cut boss_1_lip_notch (lip_notch)
  multmatrix([[1, 0, 0, -3.345584], [0, 1, 0, -2.645584], [0, 0, 1, 10.7], [0, 0, 0, 1]]) cylinder(h=3.1, d=7.108563, $fn=64);
  // cut boss_2_lid_hole (screw_hole)
  multmatrix([[1, 0, 0, 47.645584], [0, 1, 0, -2.645584], [0, 0, 1, 12.8], [0, 0, 0, 1]]) cylinder(h=4.4, d=3.4041, $fn=64);
  // cut boss_2_lip_notch (lip_notch)
  multmatrix([[1, 0, 0, 47.645584], [0, 1, 0, -2.645584], [0, 0, 1, 10.7], [0, 0, 0, 1]]) cylinder(h=3.1, d=7.108563, $fn=64);
  // cut boss_3_lid_hole (screw_hole)
  multmatrix([[1, 0, 0, -3.345584], [0, 1, 0, 20.645584], [0, 0, 1, 12.8], [0, 0, 0, 1]]) cylinder(h=4.4, d=3.4041, $fn=64);
  // cut boss_3_lip_notch (lip_notch)
  multmatrix([[1, 0, 0, -3.345584], [0, 1, 0, 20.645584], [0, 0, 1, 10.7], [0, 0, 0, 1]]) cylinder(h=3.1, d=7.108563, $fn=64);
  // cut boss_4_lid_hole (screw_hole)
  multmatrix([[1, 0, 0, 47.645584], [0, 1, 0, 20.645584], [0, 0, 1, 12.8], [0, 0, 0, 1]]) cylinder(h=4.4, d=3.4041, $fn=64);
  // cut boss_4_lip_notch (lip_notch)
  multmatrix([[1, 0, 0, 47.645584], [0, 1, 0, 20.645584], [0, 0, 1, 10.7], [0, 0, 0, 1]]) cylinder(h=3.1, d=7.108563, $fn=64);
}
